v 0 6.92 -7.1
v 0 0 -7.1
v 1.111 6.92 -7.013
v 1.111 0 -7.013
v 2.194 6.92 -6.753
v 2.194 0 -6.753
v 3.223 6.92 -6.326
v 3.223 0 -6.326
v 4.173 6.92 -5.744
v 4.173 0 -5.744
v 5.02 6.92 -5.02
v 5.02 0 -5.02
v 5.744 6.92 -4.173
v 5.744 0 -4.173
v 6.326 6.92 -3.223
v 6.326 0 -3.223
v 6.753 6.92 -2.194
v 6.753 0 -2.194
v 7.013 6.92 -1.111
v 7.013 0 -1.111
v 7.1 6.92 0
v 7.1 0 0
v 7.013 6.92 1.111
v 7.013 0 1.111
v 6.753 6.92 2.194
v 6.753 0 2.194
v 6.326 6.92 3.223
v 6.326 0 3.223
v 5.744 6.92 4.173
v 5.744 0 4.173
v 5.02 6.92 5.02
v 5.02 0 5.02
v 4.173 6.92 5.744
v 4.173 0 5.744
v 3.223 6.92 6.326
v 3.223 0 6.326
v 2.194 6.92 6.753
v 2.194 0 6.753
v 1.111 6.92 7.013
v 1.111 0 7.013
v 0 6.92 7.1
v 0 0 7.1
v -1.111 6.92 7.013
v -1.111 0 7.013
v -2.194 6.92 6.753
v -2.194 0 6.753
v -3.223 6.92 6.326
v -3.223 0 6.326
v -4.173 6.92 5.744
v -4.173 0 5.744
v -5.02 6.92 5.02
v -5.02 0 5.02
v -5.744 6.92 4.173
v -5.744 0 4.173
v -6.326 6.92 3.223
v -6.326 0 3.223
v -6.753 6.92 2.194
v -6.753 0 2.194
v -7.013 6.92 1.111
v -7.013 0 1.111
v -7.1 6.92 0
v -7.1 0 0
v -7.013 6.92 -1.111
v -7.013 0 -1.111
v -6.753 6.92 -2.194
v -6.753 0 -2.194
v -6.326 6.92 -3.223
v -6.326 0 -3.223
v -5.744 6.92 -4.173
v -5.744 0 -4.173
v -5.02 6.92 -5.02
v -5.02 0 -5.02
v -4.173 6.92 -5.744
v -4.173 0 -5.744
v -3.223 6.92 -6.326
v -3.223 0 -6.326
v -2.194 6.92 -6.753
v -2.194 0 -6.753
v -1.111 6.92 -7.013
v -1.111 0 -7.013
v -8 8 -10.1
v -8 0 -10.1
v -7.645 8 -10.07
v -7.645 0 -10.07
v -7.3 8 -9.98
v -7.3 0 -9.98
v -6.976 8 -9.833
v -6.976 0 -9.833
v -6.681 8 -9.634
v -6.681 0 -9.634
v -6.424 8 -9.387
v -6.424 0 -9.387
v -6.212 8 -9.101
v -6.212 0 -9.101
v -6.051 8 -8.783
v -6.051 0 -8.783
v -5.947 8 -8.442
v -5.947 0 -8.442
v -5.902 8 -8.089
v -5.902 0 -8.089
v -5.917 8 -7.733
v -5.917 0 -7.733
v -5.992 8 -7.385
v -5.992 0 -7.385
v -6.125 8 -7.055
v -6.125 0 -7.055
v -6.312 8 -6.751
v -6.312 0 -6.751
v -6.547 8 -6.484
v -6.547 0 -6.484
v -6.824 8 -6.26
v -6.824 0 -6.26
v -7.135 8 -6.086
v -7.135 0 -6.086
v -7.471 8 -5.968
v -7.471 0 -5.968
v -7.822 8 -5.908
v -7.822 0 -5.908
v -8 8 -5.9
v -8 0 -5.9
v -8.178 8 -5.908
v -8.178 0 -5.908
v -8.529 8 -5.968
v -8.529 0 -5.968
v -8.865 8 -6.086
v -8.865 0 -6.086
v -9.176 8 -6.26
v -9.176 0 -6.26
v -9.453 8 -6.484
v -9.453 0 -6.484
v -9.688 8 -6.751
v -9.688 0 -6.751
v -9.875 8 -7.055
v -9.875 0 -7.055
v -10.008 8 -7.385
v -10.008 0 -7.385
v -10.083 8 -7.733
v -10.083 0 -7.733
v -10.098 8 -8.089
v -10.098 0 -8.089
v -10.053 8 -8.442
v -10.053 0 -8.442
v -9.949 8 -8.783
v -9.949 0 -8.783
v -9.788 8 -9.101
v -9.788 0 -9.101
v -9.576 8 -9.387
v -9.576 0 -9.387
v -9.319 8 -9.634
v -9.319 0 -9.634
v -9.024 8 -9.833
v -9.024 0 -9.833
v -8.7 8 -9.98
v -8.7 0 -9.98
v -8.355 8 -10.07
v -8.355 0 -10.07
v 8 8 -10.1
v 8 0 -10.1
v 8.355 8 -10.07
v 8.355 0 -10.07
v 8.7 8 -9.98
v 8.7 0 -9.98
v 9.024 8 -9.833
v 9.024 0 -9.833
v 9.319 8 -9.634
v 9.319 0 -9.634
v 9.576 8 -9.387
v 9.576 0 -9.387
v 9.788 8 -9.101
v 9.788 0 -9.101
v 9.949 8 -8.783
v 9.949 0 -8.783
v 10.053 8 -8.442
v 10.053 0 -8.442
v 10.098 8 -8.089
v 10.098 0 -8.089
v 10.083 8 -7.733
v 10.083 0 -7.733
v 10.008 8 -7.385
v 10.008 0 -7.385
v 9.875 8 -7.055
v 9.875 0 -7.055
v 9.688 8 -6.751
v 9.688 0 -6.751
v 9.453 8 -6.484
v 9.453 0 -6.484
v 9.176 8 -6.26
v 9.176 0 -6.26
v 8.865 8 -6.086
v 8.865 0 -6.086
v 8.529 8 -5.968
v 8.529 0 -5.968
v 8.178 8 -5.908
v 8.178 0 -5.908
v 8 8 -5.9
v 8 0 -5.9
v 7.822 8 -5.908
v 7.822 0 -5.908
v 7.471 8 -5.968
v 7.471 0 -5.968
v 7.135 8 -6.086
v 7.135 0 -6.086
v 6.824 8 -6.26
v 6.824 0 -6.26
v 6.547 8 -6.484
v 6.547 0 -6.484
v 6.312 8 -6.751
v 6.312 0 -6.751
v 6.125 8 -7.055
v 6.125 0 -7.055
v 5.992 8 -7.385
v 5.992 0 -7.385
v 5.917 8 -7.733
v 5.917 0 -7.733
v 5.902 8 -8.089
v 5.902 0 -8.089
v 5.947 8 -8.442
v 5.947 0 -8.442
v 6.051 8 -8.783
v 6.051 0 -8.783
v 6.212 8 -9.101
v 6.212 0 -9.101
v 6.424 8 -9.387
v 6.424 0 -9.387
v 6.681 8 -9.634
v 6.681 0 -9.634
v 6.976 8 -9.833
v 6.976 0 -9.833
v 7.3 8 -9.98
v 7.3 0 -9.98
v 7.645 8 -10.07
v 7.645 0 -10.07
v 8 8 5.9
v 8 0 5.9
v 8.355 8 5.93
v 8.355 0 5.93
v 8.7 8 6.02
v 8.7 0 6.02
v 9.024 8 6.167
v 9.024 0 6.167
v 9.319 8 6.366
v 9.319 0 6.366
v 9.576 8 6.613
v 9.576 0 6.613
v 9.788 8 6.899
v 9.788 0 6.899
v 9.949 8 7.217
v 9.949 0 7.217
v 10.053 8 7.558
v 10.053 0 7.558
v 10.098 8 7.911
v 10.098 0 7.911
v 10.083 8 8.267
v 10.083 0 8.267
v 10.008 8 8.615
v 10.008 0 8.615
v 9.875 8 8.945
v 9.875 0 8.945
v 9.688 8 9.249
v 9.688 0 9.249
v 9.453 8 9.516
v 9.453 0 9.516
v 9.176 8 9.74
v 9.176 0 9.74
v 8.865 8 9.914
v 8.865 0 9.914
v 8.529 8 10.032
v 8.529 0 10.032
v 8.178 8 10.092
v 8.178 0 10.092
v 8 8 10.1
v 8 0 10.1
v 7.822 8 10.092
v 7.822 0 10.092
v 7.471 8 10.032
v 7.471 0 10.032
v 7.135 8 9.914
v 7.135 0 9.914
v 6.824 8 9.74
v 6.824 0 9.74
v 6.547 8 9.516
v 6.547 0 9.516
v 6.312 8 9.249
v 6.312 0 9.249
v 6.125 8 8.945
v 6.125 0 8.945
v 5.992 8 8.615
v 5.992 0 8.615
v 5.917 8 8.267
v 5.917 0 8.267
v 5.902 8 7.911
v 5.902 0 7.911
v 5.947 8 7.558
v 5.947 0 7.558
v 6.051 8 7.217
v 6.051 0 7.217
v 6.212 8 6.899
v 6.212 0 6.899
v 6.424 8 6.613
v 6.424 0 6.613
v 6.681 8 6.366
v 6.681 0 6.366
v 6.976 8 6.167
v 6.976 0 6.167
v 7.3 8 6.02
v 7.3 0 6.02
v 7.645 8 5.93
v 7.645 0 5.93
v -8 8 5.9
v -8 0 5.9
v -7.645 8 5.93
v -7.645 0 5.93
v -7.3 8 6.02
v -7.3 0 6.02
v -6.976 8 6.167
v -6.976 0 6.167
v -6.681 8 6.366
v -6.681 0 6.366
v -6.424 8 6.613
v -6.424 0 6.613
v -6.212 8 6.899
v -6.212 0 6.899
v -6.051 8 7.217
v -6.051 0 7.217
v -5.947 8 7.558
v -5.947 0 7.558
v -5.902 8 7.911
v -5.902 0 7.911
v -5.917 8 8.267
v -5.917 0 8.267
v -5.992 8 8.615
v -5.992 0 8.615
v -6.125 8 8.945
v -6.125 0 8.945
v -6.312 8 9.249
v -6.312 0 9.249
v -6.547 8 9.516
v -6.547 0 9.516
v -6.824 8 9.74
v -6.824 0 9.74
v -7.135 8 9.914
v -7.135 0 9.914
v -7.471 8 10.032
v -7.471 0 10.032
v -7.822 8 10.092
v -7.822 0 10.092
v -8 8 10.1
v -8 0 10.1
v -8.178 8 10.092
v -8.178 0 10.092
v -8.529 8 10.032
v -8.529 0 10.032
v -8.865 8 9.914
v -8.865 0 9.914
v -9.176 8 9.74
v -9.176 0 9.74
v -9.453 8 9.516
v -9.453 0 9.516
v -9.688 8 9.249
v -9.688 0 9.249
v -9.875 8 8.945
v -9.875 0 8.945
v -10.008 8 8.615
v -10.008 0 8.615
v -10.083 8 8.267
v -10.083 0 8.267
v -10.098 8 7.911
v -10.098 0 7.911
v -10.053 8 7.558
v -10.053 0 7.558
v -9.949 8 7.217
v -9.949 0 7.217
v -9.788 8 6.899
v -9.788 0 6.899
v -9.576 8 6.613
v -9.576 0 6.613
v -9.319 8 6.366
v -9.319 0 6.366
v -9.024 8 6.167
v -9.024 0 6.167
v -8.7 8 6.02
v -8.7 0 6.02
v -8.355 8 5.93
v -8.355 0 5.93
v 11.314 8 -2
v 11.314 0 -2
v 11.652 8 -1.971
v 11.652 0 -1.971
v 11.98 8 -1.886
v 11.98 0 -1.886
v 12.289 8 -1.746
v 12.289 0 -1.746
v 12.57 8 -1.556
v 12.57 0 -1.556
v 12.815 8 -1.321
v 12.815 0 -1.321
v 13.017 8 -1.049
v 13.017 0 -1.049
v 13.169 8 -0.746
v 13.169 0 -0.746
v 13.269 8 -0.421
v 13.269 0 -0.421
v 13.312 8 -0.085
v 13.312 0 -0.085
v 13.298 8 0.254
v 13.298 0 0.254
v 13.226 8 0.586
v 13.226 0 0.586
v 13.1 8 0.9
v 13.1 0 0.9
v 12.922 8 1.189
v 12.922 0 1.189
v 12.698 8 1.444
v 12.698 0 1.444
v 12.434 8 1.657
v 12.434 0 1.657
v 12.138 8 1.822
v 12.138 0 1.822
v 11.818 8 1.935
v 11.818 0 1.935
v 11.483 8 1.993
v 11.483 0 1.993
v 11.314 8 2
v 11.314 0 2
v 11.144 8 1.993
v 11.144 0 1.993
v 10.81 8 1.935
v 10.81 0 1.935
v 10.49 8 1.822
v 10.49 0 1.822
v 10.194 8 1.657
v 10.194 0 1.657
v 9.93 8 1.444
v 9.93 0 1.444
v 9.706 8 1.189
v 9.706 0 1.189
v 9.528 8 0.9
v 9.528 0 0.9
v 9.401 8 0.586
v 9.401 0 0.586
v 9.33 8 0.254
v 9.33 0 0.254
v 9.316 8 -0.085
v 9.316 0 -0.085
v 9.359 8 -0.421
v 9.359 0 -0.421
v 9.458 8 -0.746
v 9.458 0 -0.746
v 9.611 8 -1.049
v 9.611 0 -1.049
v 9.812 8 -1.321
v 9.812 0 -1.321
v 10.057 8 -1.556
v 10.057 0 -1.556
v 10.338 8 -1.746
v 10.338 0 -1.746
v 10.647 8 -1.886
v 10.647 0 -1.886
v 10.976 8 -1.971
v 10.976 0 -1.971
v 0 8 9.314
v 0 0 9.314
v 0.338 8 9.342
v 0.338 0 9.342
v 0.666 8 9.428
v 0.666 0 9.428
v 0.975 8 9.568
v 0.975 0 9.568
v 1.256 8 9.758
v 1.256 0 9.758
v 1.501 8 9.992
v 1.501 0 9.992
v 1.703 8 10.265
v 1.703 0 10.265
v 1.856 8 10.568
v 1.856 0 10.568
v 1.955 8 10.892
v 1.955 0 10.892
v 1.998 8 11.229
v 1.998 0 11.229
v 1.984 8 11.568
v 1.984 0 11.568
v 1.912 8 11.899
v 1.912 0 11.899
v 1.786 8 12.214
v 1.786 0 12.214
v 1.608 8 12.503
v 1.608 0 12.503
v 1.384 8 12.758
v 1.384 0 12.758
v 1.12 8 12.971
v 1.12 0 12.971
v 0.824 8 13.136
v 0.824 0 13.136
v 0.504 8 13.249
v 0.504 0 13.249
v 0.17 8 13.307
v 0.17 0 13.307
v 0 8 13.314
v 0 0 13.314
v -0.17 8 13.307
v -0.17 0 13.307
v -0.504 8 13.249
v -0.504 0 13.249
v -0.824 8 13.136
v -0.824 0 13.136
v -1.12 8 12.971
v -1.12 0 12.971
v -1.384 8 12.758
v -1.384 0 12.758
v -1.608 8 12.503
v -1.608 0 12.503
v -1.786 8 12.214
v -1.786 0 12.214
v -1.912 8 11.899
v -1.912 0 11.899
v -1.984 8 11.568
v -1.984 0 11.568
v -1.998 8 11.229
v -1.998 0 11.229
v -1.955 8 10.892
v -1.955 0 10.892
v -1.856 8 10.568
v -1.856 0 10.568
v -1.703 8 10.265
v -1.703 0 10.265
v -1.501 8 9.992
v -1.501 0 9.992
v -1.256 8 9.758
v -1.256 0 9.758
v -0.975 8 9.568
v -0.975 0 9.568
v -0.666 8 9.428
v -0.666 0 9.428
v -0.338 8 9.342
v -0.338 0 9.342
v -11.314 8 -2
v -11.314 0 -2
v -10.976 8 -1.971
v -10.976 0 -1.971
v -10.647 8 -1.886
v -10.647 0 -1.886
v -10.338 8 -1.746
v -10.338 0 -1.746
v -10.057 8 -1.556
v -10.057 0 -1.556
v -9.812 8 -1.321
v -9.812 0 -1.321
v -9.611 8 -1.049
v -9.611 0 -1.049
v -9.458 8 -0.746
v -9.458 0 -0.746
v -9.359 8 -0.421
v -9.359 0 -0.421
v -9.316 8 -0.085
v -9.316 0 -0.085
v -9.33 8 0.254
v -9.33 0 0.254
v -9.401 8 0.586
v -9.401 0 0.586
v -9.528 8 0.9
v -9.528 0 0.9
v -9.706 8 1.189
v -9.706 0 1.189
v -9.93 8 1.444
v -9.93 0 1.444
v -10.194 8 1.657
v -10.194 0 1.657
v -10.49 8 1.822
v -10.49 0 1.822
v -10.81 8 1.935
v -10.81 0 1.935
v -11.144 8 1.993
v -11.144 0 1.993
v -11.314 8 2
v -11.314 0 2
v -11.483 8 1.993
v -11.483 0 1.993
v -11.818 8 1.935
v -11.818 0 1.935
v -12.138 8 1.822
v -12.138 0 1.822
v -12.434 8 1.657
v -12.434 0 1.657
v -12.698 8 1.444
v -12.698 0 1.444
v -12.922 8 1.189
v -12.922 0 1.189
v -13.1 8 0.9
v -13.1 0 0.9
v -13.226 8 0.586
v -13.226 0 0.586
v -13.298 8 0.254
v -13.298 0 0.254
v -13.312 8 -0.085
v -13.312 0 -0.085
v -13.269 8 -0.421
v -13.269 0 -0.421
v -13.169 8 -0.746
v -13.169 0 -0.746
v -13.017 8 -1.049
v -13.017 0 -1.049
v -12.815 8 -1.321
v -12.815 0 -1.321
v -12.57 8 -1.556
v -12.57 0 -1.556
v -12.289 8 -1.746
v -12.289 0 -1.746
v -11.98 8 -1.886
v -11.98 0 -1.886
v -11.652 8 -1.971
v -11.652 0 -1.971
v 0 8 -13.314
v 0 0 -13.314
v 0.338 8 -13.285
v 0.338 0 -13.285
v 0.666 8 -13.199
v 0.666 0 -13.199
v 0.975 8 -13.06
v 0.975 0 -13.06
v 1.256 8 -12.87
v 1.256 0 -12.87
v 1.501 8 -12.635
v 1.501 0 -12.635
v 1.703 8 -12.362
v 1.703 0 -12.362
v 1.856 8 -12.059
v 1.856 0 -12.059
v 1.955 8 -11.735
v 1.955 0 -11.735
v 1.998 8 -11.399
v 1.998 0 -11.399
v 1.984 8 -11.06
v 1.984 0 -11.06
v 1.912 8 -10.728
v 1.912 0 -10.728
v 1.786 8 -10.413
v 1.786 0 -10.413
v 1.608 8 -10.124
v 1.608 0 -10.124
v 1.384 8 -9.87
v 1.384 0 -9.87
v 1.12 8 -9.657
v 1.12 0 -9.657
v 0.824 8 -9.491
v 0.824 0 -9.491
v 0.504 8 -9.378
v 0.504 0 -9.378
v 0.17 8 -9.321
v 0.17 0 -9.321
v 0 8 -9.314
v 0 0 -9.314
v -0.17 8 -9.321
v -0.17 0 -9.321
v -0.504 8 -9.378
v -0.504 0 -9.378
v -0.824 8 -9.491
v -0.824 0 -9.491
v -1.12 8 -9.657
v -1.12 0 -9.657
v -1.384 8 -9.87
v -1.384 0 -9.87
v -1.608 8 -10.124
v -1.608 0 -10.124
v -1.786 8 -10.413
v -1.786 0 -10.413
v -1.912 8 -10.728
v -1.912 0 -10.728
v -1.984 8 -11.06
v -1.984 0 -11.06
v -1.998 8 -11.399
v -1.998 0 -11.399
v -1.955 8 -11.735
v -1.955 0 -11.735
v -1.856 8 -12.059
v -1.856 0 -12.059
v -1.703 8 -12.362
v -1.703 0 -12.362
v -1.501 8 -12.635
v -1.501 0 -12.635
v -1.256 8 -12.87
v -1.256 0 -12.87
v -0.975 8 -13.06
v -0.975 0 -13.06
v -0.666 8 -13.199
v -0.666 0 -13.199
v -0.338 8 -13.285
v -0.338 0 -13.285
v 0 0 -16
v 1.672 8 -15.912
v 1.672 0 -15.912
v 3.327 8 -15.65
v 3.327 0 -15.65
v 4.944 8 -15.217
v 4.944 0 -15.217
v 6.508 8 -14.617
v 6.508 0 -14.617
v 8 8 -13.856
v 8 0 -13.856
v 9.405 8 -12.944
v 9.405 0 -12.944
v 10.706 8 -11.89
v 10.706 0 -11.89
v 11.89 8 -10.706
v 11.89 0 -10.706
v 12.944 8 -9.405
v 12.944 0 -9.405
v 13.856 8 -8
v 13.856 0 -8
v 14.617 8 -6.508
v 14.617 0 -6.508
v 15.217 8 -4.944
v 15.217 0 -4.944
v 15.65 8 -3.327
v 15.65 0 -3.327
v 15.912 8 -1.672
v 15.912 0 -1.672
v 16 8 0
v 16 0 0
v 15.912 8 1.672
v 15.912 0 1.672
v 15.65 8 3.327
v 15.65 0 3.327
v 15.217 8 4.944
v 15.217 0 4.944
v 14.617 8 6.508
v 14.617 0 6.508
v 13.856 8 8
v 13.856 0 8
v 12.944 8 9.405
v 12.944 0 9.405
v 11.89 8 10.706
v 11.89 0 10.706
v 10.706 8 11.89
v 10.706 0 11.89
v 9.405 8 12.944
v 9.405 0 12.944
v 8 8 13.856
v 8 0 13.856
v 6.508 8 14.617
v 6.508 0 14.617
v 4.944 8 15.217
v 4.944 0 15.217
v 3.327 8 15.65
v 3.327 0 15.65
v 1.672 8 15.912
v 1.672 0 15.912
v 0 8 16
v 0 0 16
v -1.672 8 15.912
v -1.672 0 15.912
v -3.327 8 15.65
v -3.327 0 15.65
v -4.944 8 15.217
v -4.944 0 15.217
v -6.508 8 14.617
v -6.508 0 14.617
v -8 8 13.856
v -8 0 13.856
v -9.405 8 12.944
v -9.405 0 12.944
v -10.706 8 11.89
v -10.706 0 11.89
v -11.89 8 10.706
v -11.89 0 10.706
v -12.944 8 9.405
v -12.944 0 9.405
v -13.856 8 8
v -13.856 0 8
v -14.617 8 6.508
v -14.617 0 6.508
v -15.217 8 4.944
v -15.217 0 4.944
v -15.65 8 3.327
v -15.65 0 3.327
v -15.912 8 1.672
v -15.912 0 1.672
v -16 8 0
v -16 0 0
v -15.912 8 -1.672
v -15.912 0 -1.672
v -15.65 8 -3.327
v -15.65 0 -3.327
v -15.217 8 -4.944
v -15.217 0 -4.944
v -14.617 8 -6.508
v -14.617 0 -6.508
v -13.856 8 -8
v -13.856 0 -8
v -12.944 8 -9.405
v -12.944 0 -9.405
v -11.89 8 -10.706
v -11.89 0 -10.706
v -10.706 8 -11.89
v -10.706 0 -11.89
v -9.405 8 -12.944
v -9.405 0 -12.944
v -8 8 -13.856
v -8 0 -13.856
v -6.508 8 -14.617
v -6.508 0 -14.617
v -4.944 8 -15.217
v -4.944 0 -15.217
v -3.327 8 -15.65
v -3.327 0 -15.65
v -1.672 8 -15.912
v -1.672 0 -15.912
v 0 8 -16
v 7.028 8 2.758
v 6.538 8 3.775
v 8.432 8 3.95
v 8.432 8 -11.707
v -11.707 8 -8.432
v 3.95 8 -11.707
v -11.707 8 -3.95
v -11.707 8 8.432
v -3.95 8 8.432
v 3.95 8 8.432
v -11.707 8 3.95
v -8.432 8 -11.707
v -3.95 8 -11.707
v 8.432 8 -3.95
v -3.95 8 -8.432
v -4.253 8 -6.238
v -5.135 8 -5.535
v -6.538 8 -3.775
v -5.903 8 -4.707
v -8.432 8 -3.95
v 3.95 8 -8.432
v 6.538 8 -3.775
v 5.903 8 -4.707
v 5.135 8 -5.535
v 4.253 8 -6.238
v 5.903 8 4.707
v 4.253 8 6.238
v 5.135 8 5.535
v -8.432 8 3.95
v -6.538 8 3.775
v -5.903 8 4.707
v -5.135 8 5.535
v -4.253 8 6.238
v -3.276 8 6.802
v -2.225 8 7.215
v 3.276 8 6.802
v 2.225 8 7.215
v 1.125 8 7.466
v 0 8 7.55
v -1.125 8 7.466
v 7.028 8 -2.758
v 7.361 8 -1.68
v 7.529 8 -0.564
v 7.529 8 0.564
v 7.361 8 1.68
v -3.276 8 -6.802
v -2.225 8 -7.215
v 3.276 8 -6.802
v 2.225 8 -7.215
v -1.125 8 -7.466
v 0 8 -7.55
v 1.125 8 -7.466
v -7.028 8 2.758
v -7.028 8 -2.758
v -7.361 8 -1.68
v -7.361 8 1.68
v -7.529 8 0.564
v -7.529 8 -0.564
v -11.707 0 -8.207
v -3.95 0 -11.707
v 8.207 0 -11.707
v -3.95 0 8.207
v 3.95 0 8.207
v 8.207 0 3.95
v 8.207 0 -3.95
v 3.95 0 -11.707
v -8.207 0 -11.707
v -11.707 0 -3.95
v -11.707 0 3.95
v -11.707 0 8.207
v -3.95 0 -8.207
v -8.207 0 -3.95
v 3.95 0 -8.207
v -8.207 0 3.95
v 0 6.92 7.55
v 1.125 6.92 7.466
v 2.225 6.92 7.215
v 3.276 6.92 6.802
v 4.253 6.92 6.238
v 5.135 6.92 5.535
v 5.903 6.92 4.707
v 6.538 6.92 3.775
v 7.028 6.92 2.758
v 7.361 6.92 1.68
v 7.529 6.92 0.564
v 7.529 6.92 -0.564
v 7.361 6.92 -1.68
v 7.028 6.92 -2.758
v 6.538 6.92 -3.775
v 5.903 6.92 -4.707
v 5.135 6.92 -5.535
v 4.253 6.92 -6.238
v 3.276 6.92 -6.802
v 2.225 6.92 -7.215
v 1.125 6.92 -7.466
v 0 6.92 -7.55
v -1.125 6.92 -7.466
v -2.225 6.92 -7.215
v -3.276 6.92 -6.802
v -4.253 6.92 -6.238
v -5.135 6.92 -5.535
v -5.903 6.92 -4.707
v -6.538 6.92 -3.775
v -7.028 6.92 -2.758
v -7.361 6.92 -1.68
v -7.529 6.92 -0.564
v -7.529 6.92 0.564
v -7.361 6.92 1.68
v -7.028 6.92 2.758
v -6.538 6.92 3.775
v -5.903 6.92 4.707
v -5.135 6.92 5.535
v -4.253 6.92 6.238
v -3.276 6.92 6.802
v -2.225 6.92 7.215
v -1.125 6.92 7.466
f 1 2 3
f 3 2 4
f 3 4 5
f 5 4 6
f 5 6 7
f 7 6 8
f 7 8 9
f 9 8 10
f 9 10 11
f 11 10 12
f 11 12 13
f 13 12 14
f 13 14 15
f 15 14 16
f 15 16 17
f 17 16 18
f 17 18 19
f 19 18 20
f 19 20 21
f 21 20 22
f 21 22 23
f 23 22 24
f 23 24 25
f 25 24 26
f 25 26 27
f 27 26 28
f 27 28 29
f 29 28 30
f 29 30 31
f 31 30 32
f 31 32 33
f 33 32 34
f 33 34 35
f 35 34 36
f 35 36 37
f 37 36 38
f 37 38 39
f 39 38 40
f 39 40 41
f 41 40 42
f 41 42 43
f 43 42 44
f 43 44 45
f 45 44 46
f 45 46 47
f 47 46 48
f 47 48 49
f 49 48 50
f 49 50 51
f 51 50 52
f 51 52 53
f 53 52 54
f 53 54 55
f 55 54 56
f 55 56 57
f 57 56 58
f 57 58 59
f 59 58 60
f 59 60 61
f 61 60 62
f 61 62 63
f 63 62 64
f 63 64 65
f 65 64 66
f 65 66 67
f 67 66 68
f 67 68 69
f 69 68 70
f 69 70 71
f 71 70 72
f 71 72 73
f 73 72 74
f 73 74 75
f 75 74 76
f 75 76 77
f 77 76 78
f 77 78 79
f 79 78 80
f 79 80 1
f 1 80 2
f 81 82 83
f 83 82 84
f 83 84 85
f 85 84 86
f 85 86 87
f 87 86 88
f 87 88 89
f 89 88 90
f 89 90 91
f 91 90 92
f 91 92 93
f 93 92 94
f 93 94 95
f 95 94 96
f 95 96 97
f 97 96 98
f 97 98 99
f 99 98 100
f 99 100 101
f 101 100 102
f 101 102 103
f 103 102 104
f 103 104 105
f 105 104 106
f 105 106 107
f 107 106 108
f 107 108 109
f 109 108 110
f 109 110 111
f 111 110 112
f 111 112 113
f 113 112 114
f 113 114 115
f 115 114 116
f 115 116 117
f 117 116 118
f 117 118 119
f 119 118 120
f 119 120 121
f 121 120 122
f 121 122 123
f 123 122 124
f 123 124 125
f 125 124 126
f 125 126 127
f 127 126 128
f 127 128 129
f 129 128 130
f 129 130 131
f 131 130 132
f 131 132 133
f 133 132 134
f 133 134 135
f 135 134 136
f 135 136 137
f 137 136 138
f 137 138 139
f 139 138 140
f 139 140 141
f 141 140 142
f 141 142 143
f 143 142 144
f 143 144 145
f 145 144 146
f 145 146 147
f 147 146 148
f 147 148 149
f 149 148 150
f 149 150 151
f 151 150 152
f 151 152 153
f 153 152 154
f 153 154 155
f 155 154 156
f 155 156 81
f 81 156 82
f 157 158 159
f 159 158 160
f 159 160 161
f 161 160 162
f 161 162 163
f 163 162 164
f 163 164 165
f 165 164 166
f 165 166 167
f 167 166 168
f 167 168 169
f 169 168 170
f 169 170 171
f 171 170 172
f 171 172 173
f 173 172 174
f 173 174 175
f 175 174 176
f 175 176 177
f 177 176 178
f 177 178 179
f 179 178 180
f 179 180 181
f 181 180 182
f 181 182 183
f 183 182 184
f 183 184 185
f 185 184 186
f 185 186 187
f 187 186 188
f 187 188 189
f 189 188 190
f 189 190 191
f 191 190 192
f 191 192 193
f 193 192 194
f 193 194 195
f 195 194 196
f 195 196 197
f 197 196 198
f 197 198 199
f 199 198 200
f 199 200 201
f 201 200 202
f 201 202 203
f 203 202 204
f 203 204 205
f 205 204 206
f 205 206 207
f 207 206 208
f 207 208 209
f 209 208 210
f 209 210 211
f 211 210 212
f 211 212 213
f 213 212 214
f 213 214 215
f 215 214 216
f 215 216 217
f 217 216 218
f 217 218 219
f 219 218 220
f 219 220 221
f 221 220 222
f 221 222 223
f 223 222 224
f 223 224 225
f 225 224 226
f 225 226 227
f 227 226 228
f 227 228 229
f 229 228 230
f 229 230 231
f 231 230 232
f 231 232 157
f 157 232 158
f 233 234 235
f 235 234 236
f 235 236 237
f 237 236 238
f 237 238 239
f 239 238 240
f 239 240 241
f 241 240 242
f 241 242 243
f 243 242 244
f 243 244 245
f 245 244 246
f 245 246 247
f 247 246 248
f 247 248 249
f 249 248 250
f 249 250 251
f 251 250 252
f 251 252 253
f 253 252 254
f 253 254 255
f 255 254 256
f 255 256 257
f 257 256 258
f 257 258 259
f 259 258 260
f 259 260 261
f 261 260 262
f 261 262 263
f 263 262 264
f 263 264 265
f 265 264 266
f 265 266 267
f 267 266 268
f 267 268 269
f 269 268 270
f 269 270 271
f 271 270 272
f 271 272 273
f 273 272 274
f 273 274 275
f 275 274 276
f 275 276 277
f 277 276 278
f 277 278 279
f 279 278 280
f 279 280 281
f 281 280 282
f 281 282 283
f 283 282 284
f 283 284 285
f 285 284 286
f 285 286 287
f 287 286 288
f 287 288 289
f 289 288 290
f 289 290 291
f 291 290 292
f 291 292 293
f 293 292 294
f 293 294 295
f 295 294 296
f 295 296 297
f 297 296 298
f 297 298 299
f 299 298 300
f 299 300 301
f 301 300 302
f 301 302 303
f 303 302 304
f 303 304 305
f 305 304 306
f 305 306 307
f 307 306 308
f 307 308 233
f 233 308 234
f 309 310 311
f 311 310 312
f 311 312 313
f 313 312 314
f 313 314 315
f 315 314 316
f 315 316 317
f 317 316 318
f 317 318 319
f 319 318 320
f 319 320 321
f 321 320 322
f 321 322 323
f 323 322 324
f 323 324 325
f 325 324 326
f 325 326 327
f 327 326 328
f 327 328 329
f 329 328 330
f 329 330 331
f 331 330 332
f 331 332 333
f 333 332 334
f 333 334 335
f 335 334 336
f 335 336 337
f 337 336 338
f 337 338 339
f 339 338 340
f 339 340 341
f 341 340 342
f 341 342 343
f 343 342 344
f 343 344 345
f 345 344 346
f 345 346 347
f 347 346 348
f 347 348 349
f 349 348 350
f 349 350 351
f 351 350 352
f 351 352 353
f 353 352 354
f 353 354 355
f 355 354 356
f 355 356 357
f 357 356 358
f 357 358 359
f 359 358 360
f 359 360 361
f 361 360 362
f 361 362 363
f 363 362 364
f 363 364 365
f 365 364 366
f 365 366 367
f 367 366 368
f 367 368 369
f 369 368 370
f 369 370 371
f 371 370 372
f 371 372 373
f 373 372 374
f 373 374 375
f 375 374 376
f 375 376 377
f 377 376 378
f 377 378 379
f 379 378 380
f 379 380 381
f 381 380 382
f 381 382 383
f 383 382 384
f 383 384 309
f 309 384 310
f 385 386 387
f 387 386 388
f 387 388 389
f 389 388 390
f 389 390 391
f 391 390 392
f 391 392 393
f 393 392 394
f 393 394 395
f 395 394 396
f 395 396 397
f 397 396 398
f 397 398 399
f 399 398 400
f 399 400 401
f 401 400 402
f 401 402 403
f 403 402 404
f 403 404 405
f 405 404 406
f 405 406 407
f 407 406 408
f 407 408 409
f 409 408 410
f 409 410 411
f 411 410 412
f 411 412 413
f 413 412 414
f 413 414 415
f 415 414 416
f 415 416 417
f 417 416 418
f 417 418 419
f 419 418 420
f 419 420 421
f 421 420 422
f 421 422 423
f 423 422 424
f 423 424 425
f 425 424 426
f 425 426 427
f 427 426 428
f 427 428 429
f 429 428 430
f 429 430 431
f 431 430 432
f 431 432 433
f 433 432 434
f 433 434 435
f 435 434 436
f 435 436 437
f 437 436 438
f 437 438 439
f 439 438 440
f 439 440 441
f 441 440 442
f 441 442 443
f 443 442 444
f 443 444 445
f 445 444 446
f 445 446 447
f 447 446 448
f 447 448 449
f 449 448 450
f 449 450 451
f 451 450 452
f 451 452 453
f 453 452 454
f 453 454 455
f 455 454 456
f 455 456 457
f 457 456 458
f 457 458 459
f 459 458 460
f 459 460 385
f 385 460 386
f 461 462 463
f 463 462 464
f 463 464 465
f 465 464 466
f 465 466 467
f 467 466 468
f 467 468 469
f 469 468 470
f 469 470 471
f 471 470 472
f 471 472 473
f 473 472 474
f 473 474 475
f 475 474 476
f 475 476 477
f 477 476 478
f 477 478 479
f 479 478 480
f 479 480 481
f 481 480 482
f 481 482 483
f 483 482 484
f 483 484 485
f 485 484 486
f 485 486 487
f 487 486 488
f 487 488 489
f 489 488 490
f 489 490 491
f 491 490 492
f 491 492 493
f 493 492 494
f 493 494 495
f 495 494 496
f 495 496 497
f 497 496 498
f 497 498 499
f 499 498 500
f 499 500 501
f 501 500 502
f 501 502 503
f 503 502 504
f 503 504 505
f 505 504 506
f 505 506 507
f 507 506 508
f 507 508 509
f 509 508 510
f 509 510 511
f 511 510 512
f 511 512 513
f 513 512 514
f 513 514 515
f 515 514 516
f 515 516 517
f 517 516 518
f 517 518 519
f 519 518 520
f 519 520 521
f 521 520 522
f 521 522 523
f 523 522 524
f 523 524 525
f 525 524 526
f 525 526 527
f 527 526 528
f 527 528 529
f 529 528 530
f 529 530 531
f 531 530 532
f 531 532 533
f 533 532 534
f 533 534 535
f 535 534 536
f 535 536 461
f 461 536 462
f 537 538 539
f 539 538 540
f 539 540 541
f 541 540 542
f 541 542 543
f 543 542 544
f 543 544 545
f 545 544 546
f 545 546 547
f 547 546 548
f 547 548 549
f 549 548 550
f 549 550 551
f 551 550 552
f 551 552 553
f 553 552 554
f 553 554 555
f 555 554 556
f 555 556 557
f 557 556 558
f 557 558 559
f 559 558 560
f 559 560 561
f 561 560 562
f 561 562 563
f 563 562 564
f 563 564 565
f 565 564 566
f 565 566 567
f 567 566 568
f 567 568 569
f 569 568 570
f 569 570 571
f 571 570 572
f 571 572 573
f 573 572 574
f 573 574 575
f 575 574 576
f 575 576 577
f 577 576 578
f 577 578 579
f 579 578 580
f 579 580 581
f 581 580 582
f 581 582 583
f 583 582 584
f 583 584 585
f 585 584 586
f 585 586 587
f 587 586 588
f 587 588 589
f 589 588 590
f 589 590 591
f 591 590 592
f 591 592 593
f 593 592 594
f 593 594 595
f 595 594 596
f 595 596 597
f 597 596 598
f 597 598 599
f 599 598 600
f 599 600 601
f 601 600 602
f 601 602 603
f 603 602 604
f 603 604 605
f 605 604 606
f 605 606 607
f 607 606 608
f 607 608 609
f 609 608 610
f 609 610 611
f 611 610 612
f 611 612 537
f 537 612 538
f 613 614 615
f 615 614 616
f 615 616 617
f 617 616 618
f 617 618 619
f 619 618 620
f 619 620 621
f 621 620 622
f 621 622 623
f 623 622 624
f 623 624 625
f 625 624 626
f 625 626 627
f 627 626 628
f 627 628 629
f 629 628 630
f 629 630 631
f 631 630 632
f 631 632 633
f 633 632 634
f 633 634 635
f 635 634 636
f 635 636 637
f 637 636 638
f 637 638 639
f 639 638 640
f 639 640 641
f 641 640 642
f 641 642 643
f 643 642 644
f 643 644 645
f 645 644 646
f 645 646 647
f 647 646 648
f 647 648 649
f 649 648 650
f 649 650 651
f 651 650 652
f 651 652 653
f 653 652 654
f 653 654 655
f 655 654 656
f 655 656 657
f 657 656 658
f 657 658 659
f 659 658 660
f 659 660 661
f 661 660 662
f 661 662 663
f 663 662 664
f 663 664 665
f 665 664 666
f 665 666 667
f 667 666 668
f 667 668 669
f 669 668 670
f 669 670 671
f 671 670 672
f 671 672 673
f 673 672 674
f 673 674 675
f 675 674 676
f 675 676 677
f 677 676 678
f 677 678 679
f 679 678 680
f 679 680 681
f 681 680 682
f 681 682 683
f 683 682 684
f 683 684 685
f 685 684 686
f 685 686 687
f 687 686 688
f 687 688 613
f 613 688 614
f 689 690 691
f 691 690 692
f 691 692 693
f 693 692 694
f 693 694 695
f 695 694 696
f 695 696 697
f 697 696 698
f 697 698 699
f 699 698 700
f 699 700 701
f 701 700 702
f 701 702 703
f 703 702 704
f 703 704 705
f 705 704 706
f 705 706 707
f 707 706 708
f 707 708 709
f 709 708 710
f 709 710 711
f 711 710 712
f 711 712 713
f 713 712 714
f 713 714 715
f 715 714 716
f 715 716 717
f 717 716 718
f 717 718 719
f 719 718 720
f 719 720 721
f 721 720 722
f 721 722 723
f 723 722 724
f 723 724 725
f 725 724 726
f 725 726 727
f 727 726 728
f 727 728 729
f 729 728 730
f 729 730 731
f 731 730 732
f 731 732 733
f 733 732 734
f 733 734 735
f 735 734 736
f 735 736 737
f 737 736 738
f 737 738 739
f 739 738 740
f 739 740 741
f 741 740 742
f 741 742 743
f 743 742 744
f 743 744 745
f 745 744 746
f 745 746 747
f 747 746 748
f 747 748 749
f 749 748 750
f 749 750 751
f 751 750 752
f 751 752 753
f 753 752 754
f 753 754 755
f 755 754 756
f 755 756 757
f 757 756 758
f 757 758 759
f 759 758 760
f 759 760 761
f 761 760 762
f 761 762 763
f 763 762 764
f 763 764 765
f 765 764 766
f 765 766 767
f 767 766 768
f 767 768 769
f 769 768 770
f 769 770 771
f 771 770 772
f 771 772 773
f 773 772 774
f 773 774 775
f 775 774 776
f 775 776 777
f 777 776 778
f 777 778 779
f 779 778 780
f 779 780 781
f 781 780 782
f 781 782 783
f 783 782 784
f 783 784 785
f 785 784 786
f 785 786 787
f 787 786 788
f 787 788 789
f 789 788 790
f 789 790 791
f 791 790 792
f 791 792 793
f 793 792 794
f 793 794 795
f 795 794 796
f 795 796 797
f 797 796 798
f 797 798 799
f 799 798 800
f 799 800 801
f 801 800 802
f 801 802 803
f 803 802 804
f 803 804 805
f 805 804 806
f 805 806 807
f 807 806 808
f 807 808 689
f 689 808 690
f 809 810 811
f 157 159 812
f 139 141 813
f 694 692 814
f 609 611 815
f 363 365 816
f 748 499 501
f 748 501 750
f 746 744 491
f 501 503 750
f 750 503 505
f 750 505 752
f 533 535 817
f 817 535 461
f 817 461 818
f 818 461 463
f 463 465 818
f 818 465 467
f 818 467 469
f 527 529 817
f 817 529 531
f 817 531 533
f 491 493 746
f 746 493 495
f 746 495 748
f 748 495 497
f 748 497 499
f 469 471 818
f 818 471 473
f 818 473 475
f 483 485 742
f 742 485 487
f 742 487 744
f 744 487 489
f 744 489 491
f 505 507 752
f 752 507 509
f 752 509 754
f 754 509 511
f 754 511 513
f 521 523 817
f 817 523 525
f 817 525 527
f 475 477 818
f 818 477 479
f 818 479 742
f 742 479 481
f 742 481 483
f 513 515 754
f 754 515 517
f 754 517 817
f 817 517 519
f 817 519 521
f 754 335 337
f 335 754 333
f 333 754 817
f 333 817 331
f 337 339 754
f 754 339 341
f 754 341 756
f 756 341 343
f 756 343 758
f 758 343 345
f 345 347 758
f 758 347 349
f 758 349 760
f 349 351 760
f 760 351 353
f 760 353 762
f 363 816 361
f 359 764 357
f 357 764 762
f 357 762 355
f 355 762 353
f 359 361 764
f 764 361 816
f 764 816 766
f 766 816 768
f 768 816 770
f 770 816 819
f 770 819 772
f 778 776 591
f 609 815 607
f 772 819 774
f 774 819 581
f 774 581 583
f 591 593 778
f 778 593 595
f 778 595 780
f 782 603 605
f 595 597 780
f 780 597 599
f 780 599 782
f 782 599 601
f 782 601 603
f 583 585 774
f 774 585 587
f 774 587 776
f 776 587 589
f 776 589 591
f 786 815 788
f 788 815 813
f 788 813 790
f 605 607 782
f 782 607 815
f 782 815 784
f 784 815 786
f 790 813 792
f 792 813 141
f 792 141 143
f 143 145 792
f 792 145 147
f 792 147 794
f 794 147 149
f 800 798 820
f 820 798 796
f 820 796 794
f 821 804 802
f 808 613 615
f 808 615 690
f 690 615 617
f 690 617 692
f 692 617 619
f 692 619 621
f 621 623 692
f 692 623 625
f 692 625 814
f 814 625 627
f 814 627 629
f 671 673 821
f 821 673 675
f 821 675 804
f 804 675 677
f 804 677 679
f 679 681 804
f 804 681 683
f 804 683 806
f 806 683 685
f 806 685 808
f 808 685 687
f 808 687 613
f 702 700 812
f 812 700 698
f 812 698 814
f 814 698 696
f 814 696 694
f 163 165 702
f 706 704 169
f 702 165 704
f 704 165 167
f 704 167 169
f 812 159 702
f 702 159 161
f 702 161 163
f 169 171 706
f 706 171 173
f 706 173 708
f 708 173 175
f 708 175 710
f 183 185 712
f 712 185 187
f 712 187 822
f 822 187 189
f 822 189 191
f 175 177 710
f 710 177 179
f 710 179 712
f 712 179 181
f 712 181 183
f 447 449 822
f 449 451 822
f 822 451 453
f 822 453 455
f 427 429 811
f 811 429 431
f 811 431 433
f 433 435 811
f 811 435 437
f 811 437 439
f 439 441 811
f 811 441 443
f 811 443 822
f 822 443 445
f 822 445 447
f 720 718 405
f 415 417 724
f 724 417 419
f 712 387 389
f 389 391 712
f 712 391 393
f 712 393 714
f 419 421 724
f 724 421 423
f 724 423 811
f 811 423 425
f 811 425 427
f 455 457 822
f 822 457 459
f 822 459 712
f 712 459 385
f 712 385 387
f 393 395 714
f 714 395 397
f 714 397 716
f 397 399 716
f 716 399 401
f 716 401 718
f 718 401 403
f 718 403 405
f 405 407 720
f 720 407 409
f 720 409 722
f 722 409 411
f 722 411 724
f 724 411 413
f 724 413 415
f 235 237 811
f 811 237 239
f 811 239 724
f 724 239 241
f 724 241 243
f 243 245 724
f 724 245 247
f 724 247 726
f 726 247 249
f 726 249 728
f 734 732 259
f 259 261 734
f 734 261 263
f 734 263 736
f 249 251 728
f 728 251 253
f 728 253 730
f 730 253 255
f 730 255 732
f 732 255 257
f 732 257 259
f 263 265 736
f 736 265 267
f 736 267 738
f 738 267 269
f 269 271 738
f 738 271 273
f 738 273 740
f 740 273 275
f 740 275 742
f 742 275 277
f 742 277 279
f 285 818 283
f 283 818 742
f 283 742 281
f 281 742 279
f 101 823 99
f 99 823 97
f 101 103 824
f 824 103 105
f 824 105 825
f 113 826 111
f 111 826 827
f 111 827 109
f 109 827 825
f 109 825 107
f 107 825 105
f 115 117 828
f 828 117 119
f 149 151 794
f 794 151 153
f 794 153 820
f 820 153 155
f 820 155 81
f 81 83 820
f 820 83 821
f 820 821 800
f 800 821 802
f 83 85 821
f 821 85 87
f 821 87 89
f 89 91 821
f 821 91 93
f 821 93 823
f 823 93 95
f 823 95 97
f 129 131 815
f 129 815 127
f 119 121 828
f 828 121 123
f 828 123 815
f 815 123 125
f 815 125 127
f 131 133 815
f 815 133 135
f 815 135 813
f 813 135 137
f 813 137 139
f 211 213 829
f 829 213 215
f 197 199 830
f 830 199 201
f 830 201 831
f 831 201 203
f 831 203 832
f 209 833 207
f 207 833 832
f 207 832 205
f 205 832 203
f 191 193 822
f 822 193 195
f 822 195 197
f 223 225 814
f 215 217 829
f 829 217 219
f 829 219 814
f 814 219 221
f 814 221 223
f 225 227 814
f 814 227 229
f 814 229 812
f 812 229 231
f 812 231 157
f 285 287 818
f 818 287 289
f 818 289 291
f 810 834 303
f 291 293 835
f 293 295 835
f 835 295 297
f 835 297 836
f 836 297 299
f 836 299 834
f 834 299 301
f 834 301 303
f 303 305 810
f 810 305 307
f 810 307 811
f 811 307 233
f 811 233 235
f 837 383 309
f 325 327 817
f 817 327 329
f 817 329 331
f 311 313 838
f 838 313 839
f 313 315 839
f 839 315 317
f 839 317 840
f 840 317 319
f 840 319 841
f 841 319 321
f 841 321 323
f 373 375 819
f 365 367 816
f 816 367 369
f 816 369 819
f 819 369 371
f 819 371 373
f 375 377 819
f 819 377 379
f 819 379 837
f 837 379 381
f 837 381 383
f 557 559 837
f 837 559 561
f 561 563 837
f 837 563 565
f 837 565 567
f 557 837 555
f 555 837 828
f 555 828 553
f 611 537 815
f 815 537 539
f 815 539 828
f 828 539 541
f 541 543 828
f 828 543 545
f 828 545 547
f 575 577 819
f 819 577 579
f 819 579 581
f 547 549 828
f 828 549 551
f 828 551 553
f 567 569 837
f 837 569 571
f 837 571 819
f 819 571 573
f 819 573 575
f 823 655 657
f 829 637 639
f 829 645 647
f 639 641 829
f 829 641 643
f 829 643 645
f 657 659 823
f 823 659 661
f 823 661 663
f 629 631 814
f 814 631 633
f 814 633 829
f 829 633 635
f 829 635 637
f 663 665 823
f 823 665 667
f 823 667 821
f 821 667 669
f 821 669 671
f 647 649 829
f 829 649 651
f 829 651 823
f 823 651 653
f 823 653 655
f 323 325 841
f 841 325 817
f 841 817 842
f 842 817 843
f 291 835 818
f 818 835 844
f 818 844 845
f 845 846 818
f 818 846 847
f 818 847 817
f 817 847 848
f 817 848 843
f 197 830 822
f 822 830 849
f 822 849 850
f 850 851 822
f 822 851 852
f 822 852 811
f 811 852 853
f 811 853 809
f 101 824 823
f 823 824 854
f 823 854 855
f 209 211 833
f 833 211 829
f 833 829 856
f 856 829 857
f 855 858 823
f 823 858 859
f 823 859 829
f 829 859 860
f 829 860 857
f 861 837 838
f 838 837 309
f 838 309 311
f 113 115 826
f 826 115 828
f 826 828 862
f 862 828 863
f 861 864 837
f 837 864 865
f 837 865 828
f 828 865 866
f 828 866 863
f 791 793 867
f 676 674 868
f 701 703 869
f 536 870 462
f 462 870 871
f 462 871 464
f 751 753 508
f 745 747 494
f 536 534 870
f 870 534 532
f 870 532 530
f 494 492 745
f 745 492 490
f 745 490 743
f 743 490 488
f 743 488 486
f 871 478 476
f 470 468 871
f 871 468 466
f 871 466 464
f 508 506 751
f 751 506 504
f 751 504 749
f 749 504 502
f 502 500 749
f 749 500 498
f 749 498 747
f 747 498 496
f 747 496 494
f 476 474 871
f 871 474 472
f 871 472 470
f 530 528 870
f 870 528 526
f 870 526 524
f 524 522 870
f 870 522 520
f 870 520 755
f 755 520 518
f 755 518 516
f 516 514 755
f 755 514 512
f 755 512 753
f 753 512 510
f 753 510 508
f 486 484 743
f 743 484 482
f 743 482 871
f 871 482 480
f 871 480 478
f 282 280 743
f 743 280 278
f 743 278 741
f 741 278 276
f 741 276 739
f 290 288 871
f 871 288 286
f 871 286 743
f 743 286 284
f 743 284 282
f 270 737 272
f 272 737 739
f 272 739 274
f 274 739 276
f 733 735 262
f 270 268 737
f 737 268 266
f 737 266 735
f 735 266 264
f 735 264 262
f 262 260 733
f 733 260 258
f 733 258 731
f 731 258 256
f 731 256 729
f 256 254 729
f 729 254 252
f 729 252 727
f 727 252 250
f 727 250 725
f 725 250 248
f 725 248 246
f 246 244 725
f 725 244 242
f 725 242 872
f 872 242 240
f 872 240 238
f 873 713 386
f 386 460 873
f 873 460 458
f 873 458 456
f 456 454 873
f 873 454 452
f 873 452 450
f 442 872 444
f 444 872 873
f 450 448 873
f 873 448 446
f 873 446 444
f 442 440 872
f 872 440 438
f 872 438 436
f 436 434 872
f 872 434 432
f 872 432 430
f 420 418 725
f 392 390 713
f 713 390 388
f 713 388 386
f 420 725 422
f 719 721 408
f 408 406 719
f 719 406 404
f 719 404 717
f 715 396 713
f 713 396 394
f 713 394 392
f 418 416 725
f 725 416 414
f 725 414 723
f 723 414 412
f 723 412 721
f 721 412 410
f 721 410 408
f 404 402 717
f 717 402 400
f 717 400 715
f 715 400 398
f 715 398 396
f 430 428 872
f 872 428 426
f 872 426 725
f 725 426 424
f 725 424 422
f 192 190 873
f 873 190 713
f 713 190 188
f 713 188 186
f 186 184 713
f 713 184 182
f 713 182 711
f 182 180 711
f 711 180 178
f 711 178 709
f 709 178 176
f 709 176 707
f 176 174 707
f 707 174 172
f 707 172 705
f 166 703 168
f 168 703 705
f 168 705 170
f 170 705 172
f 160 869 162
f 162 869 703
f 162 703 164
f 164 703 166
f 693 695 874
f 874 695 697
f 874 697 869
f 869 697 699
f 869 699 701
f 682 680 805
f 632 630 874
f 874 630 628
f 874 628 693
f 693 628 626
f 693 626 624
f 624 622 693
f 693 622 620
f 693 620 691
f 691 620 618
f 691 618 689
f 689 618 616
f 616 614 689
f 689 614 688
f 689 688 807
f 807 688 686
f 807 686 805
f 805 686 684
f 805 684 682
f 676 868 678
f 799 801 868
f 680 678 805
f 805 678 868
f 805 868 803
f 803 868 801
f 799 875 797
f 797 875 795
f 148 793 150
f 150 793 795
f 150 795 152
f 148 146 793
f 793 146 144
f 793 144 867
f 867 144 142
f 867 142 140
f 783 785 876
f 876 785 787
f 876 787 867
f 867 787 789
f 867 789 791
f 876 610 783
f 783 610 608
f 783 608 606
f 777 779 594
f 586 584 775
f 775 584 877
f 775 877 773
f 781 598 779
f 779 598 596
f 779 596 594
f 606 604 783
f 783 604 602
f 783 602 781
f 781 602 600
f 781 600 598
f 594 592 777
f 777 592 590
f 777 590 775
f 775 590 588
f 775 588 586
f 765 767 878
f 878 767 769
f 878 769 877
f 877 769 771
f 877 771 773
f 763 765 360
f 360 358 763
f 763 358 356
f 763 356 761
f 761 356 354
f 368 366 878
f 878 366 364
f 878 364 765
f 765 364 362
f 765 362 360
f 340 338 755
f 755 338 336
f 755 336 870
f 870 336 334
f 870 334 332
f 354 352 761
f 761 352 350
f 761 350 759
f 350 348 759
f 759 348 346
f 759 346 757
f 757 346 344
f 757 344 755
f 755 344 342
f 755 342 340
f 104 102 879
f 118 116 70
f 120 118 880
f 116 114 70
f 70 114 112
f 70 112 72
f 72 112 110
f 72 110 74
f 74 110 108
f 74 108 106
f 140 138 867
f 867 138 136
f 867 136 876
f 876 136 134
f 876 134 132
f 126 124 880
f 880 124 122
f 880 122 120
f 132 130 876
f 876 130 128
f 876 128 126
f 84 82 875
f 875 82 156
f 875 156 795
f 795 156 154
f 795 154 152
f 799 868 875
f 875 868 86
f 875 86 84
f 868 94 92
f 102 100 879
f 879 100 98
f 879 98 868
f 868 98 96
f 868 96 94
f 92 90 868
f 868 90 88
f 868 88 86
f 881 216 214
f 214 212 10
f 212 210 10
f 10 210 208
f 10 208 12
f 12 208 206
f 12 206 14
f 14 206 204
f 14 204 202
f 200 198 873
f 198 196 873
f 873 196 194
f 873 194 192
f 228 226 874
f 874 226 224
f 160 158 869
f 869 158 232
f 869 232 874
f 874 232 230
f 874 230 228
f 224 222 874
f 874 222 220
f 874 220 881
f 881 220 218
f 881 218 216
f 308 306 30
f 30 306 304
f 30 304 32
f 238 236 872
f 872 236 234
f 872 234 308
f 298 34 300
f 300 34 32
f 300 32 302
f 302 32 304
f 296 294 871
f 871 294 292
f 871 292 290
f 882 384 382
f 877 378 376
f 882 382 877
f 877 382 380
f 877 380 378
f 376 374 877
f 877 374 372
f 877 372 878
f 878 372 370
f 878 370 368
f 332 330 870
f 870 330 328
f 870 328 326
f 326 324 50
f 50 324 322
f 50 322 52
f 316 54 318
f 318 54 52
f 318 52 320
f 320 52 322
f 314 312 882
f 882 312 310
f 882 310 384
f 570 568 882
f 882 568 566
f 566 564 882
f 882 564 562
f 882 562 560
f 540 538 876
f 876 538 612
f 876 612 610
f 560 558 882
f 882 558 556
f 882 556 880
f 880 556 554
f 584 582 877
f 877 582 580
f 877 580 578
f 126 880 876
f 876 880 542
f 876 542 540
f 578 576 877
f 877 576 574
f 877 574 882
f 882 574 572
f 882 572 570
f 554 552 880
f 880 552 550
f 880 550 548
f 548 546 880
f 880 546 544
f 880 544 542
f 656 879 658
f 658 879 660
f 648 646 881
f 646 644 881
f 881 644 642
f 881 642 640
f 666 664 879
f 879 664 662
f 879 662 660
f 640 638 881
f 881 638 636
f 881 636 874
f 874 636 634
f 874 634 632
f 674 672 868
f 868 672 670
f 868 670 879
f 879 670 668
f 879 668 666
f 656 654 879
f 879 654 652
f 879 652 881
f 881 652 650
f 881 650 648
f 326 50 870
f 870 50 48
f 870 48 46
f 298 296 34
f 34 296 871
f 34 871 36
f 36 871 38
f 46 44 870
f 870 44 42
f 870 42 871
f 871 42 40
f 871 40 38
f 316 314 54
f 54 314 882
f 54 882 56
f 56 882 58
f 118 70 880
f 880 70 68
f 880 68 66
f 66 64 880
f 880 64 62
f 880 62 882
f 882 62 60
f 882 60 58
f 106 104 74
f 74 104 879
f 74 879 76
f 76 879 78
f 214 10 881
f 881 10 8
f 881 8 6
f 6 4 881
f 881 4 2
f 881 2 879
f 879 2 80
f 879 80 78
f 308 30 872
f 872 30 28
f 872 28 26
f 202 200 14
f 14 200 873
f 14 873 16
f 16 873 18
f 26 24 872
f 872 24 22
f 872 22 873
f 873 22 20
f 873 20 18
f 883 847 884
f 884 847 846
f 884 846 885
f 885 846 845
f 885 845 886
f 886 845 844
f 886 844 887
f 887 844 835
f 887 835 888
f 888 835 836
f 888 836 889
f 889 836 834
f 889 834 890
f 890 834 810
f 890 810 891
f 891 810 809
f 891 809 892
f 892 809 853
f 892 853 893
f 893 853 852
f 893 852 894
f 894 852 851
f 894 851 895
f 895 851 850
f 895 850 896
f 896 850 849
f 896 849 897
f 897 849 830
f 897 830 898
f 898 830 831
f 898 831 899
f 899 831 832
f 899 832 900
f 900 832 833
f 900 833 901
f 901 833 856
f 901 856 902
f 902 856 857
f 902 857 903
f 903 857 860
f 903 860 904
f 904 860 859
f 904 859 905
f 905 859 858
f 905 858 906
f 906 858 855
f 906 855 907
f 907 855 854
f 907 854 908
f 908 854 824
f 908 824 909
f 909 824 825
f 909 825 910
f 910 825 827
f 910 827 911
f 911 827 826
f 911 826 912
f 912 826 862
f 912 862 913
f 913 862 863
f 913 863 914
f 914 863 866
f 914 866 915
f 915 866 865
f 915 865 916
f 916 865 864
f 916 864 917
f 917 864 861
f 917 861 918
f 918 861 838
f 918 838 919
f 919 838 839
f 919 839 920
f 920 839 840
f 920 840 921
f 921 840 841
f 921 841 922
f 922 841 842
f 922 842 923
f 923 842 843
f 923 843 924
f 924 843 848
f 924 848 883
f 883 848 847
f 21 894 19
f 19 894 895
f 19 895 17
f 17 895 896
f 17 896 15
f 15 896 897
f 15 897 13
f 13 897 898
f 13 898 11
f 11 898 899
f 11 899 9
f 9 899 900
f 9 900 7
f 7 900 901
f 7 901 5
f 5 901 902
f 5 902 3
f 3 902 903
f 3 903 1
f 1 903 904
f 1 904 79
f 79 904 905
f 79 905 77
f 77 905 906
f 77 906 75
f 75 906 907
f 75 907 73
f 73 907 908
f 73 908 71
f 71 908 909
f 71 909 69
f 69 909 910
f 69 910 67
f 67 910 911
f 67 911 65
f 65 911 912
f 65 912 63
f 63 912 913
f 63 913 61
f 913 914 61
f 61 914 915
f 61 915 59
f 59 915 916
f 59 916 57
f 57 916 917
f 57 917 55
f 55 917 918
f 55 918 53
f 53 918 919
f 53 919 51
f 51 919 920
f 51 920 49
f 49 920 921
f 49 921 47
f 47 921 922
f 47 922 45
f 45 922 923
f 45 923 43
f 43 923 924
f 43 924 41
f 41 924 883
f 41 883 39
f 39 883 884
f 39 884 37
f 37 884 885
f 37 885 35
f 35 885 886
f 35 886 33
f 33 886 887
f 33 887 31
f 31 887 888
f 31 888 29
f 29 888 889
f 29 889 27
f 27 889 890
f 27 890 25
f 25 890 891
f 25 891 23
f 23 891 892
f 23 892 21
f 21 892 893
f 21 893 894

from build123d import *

# Parameters (mm, degrees)
SKETCH1_R           = 16
SKETCH1_R_2         = 7.1
SKETCH1_R_3         = 2
SKETCH1_R_4         = 2.1
BOSS_EXTRUDE1_DEPTH = 8
SKETCH2_R           = 7.55
CUT_EXTRUDE1_DEPTH  = 1.08


with BuildPart() as part:
    # Sketch1 → Boss-Extrude1 (new body)
    with BuildSketch(Plane(origin=(0, 0, 0), x_dir=(1, 0, 0), z_dir=(0, 1, 0))):
        Circle(SKETCH1_R)
        Circle(SKETCH1_R_2, mode=Mode.SUBTRACT)
        with Locations((0, 11.313708499)):
            Circle(SKETCH1_R_3, mode=Mode.SUBTRACT)
        with Locations((-11.313708499, 0)):
            Circle(SKETCH1_R_3, mode=Mode.SUBTRACT)
        with Locations((0, -11.313708499)):
            Circle(SKETCH1_R_3, mode=Mode.SUBTRACT)
        with Locations((11.313708499, 0)):
            Circle(SKETCH1_R_3, mode=Mode.SUBTRACT)
        with Locations((-8, -8)):
            Circle(SKETCH1_R_4, mode=Mode.SUBTRACT)
        with Locations((8, -8)):
            Circle(SKETCH1_R_4, mode=Mode.SUBTRACT)
        with Locations((8, 8)):
            Circle(SKETCH1_R_4, mode=Mode.SUBTRACT)
        with Locations((-8, 8)):
            Circle(SKETCH1_R_4, mode=Mode.SUBTRACT)
    extrude(amount=BOSS_EXTRUDE1_DEPTH)

    # Sketch2 → Cut-Extrude1 (cut)
    with BuildSketch(Plane(origin=(0, 8, 0), x_dir=(1, 0, 0), z_dir=(0, 1, 0))):
        Circle(SKETCH2_R)
    extrude(amount=-CUT_EXTRUDE1_DEPTH, mode=Mode.SUBTRACT)


solid = part.part
